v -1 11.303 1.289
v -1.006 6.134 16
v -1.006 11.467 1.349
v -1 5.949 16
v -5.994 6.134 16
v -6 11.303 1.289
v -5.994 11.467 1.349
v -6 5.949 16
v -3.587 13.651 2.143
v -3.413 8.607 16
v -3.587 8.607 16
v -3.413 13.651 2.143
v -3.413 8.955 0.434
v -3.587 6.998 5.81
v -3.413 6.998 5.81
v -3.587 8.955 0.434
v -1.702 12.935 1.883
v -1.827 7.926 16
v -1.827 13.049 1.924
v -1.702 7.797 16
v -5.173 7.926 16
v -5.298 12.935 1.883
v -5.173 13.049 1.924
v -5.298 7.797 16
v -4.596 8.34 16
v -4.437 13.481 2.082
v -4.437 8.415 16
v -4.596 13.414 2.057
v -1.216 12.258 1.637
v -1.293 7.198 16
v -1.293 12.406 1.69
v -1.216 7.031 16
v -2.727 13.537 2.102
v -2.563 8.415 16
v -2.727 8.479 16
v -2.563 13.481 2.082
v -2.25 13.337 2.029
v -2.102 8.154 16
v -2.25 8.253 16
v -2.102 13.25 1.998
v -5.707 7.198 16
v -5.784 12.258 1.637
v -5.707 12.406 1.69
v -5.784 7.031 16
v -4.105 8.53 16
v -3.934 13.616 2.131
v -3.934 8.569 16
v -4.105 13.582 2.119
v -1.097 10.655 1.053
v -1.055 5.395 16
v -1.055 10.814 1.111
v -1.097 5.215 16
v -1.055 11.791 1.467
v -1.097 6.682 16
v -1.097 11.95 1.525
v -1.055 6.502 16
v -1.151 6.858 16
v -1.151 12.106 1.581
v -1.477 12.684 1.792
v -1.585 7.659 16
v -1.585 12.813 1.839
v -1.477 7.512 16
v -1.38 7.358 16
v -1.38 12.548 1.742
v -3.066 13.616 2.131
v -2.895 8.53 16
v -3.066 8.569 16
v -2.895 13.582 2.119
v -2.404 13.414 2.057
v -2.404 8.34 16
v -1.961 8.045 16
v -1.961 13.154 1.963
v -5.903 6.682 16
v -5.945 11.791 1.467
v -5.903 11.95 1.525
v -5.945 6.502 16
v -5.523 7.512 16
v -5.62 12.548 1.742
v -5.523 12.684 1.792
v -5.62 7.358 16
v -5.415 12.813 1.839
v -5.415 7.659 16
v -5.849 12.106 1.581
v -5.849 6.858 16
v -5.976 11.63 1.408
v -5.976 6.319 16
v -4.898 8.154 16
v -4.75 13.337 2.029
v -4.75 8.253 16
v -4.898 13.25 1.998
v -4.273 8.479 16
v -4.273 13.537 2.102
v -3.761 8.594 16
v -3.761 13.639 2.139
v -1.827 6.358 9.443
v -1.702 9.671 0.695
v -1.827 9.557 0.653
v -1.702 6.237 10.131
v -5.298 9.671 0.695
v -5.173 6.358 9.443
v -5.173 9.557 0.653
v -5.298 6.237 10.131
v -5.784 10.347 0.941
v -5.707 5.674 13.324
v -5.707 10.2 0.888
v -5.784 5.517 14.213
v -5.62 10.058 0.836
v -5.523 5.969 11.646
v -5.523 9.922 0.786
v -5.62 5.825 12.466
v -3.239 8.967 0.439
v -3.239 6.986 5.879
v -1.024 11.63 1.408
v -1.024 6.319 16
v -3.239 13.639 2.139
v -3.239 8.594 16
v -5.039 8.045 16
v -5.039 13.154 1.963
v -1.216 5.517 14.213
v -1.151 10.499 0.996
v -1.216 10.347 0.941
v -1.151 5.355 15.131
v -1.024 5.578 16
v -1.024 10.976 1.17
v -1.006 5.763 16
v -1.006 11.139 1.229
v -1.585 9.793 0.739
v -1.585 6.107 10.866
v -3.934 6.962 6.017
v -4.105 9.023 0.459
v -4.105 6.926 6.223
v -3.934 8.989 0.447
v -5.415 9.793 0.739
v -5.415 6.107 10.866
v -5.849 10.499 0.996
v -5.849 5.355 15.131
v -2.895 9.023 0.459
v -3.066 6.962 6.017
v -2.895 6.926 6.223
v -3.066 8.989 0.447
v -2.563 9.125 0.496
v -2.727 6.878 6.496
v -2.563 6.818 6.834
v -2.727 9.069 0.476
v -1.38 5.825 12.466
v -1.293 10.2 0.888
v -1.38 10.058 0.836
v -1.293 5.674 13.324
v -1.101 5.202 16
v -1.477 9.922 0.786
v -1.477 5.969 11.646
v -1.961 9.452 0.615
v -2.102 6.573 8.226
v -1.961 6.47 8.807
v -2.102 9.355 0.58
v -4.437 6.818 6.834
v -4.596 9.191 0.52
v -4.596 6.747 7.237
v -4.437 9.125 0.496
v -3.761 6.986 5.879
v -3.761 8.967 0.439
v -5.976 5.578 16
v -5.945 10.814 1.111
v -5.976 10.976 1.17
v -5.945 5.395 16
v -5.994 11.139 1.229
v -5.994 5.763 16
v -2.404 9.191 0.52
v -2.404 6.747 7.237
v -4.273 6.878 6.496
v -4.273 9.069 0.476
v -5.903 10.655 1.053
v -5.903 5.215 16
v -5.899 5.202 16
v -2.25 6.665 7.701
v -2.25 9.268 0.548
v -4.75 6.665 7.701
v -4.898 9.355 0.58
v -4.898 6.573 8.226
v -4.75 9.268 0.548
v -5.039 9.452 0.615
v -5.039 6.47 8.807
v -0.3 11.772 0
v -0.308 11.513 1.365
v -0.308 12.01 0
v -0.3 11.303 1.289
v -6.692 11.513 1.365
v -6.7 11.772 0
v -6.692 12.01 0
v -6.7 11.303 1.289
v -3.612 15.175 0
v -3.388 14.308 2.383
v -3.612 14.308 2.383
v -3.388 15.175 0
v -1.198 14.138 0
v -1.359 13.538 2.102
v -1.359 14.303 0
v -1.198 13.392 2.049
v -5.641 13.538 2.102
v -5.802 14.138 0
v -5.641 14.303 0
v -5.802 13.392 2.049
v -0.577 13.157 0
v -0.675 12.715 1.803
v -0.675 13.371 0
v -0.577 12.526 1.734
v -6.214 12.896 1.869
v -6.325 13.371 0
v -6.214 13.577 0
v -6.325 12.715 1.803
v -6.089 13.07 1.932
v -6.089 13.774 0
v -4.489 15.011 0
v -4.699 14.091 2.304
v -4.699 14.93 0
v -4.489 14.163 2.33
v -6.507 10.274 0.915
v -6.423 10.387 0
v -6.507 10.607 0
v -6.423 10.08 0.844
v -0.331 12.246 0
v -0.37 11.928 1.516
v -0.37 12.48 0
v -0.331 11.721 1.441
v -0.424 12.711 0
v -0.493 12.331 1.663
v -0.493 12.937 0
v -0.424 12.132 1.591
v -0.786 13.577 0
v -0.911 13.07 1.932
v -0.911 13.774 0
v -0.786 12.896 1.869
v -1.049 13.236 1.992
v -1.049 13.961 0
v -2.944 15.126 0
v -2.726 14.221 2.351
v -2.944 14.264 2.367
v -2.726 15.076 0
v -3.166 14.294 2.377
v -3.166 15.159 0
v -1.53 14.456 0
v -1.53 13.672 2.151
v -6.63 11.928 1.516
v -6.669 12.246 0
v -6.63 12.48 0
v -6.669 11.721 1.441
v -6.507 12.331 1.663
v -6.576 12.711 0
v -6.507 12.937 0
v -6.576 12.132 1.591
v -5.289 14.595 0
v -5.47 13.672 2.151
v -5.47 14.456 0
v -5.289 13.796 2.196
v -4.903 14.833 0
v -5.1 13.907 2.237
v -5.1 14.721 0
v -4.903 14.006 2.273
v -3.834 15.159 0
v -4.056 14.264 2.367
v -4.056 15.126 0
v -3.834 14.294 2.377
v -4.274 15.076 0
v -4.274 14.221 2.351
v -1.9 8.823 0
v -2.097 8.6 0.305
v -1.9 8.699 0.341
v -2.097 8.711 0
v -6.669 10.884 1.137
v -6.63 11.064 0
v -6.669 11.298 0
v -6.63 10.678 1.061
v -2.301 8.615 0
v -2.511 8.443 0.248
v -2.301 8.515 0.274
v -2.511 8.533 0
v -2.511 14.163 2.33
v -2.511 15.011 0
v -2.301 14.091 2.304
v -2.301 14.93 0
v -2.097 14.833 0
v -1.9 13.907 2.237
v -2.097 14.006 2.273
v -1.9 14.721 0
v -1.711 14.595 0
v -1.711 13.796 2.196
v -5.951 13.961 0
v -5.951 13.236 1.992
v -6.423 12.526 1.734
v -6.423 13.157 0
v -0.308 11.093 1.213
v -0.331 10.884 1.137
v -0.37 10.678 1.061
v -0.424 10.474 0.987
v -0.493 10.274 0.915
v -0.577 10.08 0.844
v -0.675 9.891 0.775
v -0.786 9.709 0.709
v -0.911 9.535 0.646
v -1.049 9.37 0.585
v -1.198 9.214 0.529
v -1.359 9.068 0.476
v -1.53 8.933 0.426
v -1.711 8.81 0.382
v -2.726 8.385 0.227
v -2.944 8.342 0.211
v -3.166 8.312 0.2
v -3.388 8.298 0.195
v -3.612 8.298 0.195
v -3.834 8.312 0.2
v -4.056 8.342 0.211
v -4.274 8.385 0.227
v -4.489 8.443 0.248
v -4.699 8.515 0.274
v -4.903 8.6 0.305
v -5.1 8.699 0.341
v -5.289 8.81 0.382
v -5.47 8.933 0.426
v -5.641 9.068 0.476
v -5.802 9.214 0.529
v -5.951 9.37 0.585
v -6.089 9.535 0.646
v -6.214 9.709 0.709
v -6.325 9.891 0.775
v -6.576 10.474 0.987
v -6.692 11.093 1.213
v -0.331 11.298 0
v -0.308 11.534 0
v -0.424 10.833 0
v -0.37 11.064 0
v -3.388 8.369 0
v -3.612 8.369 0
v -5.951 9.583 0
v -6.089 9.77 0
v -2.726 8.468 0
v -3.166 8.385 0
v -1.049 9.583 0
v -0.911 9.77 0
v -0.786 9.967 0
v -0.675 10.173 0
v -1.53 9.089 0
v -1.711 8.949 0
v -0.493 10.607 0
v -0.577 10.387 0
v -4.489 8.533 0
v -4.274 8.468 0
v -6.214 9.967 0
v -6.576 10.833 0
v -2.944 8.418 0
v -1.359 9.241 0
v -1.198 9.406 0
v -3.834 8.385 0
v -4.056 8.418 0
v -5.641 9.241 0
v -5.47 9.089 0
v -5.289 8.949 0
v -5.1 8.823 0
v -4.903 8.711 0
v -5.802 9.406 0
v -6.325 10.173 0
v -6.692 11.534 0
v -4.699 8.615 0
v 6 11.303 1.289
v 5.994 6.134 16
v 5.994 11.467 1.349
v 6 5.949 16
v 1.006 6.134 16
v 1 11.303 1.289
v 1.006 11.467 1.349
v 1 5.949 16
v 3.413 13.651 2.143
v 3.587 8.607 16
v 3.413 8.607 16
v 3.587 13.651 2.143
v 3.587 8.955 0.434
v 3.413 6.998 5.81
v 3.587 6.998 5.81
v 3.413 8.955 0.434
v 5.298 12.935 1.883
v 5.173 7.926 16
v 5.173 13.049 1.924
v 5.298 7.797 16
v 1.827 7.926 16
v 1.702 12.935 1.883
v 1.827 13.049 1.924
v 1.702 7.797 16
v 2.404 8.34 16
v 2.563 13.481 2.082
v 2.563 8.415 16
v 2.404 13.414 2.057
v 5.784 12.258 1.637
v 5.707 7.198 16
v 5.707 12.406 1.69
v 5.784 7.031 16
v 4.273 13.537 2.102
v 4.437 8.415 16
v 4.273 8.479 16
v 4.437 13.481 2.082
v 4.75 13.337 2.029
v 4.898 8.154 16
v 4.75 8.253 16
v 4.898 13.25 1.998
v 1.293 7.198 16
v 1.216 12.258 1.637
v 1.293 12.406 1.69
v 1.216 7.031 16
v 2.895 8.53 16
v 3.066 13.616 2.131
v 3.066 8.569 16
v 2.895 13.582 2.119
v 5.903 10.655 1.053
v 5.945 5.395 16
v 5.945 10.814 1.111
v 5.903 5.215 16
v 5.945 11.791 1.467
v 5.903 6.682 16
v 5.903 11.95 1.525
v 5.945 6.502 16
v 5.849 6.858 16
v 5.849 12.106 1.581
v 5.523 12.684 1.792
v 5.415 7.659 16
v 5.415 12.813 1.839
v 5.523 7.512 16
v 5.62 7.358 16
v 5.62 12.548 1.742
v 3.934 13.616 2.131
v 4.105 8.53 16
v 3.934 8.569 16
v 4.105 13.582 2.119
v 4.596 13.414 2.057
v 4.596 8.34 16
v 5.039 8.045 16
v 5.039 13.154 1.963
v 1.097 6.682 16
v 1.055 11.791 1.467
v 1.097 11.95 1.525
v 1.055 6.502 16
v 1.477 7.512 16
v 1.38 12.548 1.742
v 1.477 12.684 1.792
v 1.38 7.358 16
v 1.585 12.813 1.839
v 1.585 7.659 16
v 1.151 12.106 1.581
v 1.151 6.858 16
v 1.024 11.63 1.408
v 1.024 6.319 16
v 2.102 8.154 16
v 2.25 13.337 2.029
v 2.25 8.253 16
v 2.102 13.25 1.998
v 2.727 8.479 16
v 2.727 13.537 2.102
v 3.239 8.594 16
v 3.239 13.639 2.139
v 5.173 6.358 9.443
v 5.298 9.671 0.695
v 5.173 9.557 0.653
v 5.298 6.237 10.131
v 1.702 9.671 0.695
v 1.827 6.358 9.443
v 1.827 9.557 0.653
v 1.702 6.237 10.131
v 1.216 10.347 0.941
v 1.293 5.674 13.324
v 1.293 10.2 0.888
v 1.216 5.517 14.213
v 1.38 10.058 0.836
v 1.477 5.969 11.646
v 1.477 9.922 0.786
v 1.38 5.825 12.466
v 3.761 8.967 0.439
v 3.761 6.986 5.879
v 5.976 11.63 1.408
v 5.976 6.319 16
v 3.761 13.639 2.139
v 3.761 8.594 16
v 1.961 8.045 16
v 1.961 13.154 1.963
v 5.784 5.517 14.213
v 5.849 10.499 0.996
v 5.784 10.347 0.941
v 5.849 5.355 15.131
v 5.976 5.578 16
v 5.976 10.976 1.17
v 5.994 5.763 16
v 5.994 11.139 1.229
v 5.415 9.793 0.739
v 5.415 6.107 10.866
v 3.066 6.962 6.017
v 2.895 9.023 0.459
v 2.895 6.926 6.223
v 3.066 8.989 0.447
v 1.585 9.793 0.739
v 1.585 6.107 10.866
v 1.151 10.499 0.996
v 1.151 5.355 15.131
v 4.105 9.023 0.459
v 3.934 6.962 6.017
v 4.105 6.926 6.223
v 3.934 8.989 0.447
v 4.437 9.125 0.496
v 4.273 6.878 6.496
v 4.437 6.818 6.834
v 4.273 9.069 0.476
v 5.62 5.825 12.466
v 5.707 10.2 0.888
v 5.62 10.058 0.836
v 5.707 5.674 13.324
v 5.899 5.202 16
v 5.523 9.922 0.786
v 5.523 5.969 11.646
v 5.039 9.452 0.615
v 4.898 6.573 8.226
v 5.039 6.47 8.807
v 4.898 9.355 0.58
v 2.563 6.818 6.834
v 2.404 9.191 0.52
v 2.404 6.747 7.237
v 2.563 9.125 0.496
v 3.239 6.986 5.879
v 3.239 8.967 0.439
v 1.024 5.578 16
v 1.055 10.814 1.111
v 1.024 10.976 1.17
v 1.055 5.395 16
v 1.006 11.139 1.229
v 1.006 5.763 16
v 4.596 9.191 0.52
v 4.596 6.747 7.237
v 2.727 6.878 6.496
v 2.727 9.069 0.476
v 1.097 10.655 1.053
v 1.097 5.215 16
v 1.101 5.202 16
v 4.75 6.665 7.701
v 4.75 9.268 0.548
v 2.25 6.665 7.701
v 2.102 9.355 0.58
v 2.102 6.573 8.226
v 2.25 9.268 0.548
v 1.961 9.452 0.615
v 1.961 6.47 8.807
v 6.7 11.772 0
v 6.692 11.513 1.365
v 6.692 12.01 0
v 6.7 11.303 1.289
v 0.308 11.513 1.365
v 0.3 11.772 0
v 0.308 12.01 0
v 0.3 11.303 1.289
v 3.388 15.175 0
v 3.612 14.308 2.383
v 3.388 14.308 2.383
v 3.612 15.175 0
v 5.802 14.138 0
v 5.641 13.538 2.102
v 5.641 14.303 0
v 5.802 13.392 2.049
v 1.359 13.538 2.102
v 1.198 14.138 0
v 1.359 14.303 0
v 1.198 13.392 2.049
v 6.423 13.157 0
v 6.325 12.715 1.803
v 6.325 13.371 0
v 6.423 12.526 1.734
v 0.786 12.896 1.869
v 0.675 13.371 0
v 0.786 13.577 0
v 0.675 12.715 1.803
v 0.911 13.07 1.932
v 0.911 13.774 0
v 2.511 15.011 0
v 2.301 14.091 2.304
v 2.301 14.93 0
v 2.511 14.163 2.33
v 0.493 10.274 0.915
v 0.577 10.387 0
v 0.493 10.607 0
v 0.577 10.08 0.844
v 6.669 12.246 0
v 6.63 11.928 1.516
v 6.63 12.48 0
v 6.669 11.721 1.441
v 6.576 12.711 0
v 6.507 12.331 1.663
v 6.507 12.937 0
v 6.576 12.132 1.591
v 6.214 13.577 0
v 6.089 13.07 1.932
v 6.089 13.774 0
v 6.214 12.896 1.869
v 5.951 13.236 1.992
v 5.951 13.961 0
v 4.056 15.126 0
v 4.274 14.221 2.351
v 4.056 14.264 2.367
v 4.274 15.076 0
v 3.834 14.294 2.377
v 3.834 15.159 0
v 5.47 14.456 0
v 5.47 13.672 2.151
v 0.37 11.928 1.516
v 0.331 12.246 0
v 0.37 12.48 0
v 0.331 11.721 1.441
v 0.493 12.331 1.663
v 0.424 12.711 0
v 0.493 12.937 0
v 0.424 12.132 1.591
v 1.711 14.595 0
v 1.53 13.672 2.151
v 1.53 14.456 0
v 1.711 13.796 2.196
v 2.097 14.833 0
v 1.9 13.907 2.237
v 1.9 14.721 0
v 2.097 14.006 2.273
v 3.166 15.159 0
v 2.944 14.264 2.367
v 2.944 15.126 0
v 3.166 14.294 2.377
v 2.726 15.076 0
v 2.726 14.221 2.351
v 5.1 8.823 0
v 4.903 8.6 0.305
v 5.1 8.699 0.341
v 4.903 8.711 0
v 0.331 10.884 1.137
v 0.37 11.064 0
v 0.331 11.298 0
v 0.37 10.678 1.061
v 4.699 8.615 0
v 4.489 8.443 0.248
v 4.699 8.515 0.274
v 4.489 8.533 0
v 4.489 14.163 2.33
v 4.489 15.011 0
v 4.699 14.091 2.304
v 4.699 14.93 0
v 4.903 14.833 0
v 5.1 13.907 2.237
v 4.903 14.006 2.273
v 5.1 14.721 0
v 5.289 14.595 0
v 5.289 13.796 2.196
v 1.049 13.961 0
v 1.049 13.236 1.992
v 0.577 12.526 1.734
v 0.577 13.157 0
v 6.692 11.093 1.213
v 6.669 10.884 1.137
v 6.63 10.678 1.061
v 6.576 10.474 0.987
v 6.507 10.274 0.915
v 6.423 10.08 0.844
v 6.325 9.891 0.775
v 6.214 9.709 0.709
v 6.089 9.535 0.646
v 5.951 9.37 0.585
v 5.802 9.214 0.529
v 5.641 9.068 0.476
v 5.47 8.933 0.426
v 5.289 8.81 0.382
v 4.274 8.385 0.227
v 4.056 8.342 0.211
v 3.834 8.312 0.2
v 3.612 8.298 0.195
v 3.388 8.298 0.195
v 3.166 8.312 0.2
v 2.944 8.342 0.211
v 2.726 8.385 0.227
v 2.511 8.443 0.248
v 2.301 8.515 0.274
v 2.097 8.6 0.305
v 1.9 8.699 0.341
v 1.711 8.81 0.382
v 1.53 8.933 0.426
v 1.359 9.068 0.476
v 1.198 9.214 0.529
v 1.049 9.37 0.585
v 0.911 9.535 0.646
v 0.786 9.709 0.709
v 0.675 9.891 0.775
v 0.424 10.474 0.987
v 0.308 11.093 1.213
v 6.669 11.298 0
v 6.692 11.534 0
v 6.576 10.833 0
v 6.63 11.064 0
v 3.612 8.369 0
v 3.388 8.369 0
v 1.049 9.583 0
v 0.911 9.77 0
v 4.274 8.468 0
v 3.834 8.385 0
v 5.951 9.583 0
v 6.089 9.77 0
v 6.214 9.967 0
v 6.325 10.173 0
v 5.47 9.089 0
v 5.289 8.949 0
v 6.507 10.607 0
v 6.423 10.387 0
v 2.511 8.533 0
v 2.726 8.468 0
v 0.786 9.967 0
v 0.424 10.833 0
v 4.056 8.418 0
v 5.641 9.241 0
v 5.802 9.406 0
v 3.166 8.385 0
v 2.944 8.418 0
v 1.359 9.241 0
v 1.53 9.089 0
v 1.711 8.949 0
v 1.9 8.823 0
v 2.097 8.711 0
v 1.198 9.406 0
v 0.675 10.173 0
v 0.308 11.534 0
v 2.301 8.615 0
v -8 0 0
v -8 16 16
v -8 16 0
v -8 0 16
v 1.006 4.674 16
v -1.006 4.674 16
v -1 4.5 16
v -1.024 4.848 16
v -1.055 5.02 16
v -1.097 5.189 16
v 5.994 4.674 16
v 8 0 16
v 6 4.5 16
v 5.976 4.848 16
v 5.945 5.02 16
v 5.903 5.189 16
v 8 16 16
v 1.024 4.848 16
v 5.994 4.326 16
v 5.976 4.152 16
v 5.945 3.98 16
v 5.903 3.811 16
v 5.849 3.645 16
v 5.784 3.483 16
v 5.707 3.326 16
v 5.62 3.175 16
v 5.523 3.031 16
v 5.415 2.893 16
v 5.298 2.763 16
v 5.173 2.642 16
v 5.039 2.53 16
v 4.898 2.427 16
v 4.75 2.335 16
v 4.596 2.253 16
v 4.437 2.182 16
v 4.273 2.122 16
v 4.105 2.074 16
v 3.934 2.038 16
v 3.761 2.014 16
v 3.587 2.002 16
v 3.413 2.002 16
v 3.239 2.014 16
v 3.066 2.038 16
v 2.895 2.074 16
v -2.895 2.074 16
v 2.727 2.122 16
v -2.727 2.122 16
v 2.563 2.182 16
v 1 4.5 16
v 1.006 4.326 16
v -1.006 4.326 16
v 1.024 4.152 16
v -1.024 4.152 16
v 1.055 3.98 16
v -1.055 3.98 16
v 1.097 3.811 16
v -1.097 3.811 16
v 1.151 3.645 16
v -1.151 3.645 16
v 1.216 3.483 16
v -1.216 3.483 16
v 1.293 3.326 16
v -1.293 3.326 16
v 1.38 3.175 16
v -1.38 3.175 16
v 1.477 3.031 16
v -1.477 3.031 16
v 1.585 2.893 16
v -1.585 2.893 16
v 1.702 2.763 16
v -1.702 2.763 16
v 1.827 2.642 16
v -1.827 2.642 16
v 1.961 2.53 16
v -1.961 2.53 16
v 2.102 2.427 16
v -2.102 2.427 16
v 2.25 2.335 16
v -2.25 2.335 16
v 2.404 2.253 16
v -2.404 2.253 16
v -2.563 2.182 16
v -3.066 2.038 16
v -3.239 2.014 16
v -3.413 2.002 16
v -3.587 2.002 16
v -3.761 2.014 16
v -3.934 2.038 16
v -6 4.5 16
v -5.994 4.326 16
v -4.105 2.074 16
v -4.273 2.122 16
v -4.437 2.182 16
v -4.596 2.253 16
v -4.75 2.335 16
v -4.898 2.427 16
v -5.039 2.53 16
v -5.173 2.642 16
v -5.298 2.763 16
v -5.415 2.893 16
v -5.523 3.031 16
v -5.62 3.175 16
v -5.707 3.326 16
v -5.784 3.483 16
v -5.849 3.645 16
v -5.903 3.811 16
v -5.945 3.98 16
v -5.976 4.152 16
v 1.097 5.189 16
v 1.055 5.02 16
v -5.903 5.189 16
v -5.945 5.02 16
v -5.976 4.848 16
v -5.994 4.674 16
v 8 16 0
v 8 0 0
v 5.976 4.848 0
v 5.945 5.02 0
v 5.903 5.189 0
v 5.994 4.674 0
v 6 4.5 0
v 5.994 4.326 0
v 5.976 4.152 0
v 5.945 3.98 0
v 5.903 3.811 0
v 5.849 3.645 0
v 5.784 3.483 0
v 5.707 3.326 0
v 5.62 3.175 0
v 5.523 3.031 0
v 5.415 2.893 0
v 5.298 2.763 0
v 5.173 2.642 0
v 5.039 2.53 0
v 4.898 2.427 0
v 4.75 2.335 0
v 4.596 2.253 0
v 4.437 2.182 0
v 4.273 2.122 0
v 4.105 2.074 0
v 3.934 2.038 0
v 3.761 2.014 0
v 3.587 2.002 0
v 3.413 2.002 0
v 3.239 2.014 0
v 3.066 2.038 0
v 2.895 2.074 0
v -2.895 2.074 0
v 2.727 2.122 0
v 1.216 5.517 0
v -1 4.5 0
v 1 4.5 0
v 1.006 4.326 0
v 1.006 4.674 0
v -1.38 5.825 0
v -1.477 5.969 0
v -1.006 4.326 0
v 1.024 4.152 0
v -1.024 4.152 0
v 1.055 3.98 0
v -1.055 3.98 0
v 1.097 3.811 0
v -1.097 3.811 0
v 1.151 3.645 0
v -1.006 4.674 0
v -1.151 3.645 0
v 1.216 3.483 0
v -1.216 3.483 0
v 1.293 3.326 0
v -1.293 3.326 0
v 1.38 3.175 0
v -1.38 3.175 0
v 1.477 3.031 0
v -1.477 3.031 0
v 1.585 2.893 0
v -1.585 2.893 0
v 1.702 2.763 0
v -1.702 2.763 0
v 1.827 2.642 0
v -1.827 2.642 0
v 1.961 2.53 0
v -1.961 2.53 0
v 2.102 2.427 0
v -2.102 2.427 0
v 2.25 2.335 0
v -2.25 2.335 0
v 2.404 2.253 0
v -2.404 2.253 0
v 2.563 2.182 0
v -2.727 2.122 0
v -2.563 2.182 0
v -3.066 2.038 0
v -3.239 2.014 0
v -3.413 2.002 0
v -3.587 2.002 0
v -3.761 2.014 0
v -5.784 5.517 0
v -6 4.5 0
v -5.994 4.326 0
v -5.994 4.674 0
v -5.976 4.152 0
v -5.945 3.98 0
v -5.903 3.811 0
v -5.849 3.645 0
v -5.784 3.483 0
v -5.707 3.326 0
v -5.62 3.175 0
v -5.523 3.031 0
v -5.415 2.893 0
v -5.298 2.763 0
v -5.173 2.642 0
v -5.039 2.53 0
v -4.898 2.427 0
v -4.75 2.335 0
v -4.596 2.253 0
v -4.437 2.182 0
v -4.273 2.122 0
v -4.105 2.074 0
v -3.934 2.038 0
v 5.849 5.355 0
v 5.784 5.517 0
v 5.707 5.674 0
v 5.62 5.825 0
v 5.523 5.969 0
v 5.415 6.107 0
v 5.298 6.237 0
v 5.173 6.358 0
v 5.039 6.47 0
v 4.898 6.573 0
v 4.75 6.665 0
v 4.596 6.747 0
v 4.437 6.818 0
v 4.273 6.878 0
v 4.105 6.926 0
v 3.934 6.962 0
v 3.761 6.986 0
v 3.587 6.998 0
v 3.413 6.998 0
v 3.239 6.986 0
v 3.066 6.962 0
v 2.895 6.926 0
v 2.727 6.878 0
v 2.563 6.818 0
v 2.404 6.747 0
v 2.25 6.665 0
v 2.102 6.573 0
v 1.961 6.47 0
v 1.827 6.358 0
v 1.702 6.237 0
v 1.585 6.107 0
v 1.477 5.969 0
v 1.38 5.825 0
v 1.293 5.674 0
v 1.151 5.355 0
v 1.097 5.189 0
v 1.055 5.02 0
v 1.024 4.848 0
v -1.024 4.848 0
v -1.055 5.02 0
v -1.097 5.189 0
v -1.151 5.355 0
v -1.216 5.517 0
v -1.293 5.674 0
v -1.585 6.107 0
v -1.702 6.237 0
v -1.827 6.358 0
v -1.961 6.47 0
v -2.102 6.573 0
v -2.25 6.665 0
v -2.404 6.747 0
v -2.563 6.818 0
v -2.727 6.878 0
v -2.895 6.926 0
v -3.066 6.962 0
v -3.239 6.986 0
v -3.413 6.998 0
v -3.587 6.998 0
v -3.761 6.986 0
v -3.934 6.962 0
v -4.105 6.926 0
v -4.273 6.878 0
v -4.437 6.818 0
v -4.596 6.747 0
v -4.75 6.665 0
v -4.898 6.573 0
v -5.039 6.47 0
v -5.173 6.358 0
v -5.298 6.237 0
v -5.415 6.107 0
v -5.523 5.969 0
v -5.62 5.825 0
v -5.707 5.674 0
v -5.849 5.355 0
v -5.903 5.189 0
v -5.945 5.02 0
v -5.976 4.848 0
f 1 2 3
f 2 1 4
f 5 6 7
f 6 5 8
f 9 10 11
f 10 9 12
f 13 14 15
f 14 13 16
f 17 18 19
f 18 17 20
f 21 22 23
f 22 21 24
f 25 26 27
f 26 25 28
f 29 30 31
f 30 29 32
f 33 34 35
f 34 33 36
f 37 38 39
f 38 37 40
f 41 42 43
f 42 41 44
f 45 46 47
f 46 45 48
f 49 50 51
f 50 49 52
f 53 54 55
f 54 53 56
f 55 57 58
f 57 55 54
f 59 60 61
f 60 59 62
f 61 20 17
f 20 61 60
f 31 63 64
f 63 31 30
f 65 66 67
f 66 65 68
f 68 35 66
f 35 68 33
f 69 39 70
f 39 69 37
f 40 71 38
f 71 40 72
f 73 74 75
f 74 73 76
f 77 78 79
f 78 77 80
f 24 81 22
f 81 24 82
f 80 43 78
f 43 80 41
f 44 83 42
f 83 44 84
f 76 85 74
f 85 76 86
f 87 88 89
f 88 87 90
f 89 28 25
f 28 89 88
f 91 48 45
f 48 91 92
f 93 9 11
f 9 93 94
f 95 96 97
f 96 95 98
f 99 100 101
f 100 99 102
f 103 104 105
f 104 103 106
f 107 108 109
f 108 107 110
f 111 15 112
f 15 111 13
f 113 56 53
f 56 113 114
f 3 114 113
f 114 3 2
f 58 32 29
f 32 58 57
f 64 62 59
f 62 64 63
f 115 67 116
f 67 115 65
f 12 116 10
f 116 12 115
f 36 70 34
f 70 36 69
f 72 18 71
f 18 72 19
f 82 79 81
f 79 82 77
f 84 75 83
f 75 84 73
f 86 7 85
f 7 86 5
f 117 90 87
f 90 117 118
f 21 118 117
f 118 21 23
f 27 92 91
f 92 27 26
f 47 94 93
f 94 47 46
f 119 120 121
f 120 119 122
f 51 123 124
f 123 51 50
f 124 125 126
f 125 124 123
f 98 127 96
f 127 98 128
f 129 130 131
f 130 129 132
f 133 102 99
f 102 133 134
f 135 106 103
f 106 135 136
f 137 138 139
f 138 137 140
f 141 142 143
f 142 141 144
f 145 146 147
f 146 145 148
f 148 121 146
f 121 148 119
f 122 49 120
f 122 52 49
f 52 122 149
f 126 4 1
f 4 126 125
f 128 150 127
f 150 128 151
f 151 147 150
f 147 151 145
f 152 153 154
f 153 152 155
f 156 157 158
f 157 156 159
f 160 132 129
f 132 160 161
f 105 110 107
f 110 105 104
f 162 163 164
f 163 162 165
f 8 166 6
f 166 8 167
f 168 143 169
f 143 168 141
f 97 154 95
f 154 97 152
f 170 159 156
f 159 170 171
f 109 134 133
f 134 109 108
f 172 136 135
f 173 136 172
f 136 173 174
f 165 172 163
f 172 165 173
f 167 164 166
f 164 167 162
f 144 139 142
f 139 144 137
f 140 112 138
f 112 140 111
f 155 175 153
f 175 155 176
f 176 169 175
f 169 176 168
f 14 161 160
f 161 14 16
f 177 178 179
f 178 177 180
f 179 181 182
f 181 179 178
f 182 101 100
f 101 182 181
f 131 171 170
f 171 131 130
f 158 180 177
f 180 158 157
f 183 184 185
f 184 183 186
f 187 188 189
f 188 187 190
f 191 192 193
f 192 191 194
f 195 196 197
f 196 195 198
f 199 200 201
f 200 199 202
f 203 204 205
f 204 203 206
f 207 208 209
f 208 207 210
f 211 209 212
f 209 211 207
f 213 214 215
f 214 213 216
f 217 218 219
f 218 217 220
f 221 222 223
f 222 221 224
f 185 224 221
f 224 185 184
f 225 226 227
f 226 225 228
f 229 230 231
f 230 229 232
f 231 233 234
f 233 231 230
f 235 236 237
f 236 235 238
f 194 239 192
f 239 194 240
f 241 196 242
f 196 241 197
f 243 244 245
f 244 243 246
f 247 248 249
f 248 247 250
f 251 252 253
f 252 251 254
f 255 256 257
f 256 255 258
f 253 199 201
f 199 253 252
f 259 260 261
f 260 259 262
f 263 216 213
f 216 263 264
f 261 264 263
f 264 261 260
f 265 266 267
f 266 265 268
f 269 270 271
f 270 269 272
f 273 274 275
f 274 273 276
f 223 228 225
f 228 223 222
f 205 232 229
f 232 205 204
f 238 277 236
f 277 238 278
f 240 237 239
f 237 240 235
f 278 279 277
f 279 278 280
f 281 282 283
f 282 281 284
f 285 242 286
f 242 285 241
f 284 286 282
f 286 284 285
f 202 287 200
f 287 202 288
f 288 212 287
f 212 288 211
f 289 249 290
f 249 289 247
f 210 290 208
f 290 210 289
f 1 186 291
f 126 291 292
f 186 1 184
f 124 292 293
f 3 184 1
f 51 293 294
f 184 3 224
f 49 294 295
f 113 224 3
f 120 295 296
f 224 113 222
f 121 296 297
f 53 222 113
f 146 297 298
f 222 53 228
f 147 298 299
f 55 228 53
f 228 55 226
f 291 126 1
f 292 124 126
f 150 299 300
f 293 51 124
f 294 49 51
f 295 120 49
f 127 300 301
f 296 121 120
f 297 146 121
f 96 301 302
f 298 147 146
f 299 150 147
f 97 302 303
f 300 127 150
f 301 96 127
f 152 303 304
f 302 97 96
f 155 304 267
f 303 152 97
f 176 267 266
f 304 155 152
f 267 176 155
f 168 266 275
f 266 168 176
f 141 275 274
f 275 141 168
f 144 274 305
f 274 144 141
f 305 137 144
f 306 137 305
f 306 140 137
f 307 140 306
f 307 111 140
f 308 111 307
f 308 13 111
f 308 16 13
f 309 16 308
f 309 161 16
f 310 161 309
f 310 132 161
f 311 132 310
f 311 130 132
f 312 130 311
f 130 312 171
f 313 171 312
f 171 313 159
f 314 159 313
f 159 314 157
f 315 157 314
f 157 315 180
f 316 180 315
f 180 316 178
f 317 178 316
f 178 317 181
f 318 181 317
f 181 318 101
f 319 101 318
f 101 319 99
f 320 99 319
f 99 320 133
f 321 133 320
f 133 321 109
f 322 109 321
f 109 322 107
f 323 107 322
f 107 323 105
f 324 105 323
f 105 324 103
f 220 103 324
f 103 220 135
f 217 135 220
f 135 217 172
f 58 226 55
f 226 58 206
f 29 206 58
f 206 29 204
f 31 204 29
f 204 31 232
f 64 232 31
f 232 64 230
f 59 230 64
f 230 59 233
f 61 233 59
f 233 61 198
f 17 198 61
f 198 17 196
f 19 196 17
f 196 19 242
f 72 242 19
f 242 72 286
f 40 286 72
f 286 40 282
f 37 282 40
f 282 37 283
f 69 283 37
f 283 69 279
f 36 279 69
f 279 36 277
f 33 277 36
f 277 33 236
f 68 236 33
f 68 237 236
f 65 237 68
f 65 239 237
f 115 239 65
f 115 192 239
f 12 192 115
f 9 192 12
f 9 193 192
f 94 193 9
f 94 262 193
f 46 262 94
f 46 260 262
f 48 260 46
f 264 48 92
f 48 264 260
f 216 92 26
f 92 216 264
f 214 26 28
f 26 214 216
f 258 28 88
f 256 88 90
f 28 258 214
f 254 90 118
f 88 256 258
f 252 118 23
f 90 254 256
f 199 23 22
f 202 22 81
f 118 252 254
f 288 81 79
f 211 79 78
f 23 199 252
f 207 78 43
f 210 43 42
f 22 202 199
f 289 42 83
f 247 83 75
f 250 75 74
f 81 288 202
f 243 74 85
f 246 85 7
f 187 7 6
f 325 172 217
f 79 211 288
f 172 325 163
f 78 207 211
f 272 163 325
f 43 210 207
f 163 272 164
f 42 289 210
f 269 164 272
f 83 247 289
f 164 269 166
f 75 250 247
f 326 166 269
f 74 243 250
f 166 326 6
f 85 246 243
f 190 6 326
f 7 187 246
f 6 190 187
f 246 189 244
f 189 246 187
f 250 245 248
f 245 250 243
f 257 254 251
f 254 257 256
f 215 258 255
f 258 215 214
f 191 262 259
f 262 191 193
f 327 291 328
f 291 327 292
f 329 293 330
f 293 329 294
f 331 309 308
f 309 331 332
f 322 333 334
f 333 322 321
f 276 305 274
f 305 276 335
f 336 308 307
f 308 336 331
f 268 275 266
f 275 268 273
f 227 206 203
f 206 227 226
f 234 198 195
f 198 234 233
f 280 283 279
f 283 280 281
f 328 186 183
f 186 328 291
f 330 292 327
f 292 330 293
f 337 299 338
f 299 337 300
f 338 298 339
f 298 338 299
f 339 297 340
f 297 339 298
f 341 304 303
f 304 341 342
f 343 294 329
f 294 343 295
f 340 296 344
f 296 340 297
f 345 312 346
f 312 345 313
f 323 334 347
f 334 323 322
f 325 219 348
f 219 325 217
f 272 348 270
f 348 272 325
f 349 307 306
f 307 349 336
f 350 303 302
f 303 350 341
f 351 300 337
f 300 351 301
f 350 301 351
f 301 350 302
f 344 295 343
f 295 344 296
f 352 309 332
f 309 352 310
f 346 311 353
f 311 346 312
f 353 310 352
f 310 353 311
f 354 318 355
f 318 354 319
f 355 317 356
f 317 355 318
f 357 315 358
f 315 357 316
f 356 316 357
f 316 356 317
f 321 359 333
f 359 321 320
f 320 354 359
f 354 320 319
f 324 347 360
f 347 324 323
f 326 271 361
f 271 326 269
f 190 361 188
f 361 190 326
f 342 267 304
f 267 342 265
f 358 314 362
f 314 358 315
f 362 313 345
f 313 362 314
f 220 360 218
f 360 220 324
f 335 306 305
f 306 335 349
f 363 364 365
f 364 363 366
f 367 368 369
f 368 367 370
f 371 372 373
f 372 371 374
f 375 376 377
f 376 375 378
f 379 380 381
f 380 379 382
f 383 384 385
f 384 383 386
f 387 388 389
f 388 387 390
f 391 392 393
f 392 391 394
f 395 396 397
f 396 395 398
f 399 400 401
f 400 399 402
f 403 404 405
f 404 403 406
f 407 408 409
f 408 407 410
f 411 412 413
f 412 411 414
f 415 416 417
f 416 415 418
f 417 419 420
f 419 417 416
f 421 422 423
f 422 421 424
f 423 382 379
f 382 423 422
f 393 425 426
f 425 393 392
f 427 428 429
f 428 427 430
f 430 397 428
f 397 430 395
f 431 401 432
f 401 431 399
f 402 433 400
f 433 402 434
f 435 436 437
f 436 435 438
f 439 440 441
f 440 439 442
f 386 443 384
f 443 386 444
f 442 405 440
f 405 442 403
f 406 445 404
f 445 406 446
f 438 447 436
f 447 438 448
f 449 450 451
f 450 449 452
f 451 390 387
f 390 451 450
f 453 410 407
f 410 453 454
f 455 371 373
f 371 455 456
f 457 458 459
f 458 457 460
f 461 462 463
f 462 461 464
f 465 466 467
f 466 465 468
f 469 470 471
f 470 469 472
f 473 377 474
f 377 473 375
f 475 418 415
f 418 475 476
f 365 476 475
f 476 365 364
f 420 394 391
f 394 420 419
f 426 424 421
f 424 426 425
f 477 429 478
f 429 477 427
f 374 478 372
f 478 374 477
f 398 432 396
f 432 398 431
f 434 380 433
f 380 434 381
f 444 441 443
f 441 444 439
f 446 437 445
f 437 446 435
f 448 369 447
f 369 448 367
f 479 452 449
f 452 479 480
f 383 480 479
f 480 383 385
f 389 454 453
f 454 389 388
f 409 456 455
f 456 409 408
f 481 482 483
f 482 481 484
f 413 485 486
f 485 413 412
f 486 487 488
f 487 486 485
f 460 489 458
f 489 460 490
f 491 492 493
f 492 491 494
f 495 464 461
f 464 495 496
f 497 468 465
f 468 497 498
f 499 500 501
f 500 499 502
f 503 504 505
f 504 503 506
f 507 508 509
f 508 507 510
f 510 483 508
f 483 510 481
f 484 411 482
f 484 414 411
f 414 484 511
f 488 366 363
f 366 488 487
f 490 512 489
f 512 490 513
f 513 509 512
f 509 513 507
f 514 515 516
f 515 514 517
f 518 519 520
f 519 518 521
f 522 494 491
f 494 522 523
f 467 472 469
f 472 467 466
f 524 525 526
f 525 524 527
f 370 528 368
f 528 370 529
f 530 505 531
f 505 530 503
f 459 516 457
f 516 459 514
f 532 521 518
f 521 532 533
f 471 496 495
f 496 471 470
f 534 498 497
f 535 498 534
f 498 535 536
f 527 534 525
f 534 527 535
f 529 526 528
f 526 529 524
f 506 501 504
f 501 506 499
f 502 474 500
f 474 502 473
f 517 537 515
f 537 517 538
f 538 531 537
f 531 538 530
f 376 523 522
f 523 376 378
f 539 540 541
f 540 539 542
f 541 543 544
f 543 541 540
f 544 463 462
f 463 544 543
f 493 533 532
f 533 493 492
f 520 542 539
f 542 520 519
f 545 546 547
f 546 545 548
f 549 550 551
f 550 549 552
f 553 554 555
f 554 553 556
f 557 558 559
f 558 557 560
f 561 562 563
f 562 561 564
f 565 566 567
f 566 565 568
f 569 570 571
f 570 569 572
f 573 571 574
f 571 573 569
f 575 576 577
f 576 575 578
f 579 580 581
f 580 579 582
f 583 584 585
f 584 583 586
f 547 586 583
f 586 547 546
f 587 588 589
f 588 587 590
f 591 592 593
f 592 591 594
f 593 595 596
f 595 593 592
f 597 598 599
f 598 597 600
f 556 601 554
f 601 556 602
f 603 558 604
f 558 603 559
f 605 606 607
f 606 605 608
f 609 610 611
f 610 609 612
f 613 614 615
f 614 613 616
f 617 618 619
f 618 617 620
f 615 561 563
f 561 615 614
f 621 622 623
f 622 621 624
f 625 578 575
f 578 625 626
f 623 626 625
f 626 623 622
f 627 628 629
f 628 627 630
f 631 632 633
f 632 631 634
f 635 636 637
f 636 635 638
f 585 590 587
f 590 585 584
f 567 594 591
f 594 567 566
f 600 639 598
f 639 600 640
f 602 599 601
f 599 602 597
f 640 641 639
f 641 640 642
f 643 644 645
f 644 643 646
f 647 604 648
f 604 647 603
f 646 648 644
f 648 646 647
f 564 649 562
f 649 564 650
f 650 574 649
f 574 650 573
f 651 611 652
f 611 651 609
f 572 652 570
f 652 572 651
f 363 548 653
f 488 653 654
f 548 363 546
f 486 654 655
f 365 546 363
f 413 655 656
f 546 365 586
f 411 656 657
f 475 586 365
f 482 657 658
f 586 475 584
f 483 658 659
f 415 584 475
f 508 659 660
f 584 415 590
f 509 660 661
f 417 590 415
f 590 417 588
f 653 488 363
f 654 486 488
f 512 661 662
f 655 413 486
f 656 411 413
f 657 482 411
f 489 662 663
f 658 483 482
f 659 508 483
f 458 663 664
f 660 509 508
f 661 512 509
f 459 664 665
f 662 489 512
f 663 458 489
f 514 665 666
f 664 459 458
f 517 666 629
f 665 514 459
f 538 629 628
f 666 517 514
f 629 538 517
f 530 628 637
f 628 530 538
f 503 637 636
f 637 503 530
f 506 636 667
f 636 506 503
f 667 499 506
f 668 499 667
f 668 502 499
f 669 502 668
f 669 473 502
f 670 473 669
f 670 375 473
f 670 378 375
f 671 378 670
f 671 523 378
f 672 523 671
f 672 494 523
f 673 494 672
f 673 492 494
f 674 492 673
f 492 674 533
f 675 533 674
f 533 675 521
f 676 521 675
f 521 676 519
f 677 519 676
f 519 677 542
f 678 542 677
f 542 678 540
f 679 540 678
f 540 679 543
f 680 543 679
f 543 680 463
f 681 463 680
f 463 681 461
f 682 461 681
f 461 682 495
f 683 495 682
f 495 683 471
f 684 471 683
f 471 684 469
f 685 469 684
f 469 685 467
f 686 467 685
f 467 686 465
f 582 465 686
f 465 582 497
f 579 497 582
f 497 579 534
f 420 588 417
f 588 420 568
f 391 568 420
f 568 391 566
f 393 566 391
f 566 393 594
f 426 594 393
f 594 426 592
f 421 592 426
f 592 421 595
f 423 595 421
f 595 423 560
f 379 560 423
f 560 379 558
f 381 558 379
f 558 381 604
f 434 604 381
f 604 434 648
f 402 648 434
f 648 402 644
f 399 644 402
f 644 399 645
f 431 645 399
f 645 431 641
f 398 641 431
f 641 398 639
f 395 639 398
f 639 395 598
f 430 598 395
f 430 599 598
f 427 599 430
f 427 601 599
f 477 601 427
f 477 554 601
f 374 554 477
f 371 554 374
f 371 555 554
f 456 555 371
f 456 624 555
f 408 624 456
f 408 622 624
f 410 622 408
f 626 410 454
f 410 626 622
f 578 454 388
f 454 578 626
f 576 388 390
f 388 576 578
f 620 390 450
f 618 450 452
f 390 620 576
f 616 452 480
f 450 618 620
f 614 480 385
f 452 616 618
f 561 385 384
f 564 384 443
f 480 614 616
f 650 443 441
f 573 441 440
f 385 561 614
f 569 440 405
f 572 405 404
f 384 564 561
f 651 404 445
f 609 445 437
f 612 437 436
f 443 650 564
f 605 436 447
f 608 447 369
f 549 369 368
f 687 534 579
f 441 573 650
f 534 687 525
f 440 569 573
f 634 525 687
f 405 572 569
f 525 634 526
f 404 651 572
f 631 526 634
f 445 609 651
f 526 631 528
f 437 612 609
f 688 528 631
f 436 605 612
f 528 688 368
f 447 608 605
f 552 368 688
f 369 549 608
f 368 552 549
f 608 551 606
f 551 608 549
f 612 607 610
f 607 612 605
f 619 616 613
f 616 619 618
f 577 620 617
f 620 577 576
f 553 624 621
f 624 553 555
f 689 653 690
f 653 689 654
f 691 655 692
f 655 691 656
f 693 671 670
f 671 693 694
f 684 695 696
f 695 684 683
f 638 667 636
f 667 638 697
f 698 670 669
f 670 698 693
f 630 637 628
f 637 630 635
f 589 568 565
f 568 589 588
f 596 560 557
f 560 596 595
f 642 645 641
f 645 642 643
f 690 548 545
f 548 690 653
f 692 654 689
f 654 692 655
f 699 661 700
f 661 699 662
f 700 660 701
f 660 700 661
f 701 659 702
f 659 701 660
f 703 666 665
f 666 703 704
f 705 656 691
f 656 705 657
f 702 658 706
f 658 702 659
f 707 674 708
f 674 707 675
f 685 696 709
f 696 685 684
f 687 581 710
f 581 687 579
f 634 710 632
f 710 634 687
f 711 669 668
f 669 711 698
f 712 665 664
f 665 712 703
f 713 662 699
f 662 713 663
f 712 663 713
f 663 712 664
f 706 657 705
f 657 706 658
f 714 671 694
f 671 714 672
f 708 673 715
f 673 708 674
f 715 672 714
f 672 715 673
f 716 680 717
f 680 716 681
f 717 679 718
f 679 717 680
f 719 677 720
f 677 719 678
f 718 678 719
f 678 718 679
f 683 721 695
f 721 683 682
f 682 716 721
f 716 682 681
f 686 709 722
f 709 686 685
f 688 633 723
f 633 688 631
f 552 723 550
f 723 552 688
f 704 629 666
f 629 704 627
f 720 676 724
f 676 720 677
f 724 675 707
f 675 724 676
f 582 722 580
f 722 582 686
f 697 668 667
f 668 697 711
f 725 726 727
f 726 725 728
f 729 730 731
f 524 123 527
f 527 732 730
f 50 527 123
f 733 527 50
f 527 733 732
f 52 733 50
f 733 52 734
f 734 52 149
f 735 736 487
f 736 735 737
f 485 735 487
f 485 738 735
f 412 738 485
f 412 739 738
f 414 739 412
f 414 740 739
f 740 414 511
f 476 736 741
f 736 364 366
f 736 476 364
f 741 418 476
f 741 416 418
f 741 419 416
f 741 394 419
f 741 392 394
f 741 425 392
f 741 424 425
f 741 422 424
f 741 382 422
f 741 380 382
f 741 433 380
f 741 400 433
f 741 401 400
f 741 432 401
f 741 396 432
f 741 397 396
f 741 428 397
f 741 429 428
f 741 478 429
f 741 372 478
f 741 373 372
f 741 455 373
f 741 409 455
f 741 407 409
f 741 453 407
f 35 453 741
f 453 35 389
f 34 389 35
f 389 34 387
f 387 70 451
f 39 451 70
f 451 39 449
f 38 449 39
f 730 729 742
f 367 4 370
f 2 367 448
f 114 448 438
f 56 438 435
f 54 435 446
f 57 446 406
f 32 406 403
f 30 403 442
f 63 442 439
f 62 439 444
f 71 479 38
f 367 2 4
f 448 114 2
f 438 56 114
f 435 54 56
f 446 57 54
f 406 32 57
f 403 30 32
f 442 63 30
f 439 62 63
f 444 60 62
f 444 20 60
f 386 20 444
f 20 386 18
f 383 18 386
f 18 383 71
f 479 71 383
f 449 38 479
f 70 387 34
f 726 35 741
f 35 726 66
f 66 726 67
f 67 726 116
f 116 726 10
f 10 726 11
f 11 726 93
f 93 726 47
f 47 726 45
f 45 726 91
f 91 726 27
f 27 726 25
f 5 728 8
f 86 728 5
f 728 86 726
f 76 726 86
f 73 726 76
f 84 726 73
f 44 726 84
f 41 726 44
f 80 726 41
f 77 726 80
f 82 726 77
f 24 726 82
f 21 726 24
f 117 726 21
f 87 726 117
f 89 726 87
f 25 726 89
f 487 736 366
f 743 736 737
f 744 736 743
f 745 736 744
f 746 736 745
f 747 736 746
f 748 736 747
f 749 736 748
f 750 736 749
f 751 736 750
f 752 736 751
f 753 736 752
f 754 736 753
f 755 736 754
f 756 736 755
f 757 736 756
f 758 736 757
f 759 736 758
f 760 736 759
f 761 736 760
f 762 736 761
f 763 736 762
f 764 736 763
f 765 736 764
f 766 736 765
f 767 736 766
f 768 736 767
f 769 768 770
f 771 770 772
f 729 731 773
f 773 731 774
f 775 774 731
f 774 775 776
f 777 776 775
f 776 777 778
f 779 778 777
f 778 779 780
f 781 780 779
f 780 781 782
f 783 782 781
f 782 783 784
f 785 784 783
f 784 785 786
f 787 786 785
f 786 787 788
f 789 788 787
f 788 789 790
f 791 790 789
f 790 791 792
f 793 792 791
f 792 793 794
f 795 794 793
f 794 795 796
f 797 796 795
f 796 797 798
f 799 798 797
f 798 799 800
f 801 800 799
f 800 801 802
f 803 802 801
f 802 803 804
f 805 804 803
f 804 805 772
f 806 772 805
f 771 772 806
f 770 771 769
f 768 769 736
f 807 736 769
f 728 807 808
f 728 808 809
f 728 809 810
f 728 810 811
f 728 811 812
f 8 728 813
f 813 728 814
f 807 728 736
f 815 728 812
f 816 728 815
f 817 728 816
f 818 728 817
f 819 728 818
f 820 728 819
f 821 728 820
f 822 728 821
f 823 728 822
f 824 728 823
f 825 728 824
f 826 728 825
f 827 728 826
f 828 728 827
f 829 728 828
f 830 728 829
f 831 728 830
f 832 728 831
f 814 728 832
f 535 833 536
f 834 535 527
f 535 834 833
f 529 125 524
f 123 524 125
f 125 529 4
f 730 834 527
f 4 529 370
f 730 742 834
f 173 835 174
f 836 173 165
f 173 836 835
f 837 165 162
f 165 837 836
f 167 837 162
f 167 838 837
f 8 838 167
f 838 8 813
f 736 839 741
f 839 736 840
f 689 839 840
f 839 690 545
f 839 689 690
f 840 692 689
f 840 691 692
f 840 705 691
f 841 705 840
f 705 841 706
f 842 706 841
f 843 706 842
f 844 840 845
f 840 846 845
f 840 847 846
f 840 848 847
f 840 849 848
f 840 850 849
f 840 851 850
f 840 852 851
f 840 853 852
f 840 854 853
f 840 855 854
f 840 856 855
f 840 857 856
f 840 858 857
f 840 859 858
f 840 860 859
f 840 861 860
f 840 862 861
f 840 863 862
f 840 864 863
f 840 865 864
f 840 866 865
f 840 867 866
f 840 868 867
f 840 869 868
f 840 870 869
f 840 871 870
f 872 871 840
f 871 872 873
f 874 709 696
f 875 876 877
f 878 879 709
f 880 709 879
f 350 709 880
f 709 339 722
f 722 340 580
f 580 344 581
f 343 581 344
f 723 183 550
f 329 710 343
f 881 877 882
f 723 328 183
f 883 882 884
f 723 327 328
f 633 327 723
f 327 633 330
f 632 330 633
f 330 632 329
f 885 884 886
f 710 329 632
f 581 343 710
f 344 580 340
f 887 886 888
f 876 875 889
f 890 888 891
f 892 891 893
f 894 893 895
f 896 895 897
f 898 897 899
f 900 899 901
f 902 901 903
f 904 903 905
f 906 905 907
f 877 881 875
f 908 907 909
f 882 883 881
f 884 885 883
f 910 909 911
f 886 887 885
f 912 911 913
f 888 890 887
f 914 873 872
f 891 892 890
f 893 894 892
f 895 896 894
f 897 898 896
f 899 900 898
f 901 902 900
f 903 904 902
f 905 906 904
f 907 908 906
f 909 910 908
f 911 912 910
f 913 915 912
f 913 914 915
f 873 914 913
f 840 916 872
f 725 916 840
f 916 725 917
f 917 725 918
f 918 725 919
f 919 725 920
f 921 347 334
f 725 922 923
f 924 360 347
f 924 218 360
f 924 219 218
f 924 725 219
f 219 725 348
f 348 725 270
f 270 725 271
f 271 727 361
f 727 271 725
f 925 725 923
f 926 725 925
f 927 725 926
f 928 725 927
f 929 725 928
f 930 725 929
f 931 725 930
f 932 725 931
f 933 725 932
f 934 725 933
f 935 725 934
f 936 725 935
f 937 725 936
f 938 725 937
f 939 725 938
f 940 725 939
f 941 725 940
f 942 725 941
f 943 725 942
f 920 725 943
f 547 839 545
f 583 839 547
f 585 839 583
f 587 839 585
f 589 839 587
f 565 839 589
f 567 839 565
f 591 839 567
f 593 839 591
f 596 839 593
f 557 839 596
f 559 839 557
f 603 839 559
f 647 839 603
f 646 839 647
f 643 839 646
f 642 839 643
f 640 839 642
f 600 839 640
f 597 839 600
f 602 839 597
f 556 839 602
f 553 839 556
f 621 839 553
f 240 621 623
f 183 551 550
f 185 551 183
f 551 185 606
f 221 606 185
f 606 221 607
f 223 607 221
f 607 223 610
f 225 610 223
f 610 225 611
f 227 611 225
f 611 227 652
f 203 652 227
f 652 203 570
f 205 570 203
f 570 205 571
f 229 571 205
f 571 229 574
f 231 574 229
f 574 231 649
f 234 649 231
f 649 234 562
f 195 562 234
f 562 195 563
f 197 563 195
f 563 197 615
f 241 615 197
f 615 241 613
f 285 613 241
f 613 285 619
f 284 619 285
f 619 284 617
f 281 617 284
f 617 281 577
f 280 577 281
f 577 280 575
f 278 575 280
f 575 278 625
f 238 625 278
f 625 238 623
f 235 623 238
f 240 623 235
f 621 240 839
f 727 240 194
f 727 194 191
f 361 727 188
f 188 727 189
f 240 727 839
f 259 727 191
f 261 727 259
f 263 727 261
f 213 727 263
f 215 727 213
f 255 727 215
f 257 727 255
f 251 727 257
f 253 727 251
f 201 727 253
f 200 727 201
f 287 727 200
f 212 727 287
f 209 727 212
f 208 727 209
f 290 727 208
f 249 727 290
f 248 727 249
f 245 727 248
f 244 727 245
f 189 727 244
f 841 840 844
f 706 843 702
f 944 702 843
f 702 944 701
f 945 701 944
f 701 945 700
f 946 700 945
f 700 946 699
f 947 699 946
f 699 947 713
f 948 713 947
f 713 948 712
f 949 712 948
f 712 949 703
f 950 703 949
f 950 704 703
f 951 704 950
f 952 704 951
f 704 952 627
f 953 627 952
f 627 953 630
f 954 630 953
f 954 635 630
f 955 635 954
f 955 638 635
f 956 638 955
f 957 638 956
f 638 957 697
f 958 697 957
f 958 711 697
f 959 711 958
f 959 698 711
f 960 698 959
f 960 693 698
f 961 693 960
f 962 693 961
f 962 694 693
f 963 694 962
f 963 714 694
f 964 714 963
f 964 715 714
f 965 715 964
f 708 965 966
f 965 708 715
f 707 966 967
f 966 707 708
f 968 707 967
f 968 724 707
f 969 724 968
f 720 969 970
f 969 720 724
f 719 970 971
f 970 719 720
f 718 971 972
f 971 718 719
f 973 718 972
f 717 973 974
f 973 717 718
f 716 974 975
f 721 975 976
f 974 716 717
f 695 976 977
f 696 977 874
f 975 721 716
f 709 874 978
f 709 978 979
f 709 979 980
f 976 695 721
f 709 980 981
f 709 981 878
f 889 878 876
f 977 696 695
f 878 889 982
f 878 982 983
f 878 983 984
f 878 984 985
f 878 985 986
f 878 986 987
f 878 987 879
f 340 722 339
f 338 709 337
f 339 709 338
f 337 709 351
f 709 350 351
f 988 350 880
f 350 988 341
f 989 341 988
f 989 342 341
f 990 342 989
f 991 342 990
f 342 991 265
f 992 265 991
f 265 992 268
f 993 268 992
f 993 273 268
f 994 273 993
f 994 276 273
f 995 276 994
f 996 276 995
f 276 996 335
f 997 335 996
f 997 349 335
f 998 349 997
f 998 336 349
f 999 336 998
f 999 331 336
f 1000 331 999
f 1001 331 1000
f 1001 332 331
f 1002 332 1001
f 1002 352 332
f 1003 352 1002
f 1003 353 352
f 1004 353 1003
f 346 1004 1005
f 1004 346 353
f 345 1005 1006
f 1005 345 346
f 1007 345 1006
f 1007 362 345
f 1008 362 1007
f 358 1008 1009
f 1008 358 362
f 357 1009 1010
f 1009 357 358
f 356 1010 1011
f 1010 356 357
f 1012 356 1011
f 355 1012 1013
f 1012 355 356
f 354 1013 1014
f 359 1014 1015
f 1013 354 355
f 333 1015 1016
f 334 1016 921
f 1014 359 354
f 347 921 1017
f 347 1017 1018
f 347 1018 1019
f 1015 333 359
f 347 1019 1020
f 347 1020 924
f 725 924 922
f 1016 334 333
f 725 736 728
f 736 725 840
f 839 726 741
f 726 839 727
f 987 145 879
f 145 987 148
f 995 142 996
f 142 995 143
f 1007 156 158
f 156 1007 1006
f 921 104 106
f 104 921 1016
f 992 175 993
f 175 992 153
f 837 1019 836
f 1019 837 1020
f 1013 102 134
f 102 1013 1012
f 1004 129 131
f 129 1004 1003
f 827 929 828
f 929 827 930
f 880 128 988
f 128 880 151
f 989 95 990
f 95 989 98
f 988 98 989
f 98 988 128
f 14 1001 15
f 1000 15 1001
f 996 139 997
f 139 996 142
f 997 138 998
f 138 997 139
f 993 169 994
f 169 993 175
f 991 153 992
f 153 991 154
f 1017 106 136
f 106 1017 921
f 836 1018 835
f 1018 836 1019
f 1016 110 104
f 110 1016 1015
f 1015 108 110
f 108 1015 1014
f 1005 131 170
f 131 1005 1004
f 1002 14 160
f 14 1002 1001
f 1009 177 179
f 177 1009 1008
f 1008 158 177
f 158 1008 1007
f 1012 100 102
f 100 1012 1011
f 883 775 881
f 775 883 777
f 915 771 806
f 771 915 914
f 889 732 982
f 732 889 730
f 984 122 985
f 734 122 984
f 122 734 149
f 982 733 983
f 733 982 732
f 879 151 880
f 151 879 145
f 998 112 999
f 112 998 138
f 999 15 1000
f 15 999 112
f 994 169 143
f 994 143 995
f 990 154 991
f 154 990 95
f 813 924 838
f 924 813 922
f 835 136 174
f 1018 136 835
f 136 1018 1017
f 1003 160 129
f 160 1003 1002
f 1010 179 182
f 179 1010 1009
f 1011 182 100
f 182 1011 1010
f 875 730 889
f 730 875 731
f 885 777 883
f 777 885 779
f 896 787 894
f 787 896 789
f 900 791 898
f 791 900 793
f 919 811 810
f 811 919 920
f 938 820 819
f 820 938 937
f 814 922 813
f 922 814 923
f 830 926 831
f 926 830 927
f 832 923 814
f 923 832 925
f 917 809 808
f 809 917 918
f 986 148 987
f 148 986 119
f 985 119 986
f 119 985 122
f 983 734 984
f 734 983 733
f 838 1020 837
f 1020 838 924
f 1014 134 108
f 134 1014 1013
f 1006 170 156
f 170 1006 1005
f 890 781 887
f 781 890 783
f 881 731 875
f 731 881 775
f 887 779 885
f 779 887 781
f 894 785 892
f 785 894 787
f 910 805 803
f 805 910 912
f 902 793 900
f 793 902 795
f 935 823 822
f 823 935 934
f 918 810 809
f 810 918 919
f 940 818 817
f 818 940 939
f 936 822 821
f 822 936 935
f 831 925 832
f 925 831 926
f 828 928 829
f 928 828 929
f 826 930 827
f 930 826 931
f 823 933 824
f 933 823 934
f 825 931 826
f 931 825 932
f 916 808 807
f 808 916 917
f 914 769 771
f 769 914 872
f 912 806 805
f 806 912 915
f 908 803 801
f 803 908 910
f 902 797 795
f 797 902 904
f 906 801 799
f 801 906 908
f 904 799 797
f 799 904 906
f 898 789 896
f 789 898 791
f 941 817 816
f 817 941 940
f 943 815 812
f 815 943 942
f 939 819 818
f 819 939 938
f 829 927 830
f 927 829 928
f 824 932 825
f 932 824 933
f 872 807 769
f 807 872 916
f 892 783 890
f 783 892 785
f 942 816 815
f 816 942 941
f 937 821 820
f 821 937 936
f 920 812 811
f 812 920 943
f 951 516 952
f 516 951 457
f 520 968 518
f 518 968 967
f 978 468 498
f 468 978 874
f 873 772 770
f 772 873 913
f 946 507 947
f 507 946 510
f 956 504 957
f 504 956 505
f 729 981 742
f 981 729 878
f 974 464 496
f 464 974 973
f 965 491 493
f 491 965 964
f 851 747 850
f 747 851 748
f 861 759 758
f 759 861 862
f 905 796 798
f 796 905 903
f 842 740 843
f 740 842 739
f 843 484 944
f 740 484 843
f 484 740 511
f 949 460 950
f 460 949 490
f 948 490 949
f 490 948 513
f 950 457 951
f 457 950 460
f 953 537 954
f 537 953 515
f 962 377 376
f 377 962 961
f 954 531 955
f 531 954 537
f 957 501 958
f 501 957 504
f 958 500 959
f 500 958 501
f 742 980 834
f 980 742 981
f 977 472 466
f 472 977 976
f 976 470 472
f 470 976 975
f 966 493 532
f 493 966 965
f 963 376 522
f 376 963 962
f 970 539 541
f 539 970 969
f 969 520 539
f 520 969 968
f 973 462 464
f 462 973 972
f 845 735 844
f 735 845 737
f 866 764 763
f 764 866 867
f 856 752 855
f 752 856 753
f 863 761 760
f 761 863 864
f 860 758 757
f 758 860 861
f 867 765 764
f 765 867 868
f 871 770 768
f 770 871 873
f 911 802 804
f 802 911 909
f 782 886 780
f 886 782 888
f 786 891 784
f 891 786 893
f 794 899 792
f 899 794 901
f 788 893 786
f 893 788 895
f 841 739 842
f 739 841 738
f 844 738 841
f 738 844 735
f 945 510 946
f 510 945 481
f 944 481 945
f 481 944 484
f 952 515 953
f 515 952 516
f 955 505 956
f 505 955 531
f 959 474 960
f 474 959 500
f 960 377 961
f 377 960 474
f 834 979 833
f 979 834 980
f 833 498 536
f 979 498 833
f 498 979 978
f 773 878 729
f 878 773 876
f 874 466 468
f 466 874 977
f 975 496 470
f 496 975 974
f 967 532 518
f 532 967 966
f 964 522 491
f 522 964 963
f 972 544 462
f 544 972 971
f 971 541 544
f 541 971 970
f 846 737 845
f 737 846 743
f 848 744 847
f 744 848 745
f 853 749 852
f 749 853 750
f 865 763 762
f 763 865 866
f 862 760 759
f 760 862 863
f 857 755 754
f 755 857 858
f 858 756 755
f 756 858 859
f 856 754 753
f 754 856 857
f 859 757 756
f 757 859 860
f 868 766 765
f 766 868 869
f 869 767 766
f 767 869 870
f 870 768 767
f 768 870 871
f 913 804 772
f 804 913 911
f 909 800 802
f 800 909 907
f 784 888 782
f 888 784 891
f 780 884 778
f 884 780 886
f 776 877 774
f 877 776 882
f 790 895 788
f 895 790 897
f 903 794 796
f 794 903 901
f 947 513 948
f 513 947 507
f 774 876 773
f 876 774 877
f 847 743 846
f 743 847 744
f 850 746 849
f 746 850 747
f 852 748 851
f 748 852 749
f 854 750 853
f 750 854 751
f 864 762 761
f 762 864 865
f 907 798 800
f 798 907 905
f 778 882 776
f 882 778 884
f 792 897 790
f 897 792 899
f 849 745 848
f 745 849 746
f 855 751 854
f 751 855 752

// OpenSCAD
$fn = 90;

module lineSensor() {
    function size(v) = sqrt(v.x*v.x + v.y*v.y + v.z*v.z);

    fs1 = [-3.5, 4.5, -1];
    fs2 = [3.5, 4.5, -1];

    led1 = [-3.5, 12.5, -2];
    led2 = [3.5, 12.5, -2];

    ch = 16;

    difference() {
        translate([-8, 0, 0]) cube([16, 16, ch]);
        
        translate(fs1) cylinder(h = 18, r = 2.5);
        translate(fs2) cylinder(h = 18, r = 2.5);
        
        translate(led1) rotate([20, 0, 0]) {
            cylinder(h = ch + 10, r = 2.5);
            cylinder(h = 3.5, r = 3.2);
            }
        translate(led2) rotate([20, 0, 0]) {
            cylinder(h = ch + 10, r = 2.5);
            cylinder(h = 3.5, r = 3.2);
            }
        
        }
    }

lineSensor();
